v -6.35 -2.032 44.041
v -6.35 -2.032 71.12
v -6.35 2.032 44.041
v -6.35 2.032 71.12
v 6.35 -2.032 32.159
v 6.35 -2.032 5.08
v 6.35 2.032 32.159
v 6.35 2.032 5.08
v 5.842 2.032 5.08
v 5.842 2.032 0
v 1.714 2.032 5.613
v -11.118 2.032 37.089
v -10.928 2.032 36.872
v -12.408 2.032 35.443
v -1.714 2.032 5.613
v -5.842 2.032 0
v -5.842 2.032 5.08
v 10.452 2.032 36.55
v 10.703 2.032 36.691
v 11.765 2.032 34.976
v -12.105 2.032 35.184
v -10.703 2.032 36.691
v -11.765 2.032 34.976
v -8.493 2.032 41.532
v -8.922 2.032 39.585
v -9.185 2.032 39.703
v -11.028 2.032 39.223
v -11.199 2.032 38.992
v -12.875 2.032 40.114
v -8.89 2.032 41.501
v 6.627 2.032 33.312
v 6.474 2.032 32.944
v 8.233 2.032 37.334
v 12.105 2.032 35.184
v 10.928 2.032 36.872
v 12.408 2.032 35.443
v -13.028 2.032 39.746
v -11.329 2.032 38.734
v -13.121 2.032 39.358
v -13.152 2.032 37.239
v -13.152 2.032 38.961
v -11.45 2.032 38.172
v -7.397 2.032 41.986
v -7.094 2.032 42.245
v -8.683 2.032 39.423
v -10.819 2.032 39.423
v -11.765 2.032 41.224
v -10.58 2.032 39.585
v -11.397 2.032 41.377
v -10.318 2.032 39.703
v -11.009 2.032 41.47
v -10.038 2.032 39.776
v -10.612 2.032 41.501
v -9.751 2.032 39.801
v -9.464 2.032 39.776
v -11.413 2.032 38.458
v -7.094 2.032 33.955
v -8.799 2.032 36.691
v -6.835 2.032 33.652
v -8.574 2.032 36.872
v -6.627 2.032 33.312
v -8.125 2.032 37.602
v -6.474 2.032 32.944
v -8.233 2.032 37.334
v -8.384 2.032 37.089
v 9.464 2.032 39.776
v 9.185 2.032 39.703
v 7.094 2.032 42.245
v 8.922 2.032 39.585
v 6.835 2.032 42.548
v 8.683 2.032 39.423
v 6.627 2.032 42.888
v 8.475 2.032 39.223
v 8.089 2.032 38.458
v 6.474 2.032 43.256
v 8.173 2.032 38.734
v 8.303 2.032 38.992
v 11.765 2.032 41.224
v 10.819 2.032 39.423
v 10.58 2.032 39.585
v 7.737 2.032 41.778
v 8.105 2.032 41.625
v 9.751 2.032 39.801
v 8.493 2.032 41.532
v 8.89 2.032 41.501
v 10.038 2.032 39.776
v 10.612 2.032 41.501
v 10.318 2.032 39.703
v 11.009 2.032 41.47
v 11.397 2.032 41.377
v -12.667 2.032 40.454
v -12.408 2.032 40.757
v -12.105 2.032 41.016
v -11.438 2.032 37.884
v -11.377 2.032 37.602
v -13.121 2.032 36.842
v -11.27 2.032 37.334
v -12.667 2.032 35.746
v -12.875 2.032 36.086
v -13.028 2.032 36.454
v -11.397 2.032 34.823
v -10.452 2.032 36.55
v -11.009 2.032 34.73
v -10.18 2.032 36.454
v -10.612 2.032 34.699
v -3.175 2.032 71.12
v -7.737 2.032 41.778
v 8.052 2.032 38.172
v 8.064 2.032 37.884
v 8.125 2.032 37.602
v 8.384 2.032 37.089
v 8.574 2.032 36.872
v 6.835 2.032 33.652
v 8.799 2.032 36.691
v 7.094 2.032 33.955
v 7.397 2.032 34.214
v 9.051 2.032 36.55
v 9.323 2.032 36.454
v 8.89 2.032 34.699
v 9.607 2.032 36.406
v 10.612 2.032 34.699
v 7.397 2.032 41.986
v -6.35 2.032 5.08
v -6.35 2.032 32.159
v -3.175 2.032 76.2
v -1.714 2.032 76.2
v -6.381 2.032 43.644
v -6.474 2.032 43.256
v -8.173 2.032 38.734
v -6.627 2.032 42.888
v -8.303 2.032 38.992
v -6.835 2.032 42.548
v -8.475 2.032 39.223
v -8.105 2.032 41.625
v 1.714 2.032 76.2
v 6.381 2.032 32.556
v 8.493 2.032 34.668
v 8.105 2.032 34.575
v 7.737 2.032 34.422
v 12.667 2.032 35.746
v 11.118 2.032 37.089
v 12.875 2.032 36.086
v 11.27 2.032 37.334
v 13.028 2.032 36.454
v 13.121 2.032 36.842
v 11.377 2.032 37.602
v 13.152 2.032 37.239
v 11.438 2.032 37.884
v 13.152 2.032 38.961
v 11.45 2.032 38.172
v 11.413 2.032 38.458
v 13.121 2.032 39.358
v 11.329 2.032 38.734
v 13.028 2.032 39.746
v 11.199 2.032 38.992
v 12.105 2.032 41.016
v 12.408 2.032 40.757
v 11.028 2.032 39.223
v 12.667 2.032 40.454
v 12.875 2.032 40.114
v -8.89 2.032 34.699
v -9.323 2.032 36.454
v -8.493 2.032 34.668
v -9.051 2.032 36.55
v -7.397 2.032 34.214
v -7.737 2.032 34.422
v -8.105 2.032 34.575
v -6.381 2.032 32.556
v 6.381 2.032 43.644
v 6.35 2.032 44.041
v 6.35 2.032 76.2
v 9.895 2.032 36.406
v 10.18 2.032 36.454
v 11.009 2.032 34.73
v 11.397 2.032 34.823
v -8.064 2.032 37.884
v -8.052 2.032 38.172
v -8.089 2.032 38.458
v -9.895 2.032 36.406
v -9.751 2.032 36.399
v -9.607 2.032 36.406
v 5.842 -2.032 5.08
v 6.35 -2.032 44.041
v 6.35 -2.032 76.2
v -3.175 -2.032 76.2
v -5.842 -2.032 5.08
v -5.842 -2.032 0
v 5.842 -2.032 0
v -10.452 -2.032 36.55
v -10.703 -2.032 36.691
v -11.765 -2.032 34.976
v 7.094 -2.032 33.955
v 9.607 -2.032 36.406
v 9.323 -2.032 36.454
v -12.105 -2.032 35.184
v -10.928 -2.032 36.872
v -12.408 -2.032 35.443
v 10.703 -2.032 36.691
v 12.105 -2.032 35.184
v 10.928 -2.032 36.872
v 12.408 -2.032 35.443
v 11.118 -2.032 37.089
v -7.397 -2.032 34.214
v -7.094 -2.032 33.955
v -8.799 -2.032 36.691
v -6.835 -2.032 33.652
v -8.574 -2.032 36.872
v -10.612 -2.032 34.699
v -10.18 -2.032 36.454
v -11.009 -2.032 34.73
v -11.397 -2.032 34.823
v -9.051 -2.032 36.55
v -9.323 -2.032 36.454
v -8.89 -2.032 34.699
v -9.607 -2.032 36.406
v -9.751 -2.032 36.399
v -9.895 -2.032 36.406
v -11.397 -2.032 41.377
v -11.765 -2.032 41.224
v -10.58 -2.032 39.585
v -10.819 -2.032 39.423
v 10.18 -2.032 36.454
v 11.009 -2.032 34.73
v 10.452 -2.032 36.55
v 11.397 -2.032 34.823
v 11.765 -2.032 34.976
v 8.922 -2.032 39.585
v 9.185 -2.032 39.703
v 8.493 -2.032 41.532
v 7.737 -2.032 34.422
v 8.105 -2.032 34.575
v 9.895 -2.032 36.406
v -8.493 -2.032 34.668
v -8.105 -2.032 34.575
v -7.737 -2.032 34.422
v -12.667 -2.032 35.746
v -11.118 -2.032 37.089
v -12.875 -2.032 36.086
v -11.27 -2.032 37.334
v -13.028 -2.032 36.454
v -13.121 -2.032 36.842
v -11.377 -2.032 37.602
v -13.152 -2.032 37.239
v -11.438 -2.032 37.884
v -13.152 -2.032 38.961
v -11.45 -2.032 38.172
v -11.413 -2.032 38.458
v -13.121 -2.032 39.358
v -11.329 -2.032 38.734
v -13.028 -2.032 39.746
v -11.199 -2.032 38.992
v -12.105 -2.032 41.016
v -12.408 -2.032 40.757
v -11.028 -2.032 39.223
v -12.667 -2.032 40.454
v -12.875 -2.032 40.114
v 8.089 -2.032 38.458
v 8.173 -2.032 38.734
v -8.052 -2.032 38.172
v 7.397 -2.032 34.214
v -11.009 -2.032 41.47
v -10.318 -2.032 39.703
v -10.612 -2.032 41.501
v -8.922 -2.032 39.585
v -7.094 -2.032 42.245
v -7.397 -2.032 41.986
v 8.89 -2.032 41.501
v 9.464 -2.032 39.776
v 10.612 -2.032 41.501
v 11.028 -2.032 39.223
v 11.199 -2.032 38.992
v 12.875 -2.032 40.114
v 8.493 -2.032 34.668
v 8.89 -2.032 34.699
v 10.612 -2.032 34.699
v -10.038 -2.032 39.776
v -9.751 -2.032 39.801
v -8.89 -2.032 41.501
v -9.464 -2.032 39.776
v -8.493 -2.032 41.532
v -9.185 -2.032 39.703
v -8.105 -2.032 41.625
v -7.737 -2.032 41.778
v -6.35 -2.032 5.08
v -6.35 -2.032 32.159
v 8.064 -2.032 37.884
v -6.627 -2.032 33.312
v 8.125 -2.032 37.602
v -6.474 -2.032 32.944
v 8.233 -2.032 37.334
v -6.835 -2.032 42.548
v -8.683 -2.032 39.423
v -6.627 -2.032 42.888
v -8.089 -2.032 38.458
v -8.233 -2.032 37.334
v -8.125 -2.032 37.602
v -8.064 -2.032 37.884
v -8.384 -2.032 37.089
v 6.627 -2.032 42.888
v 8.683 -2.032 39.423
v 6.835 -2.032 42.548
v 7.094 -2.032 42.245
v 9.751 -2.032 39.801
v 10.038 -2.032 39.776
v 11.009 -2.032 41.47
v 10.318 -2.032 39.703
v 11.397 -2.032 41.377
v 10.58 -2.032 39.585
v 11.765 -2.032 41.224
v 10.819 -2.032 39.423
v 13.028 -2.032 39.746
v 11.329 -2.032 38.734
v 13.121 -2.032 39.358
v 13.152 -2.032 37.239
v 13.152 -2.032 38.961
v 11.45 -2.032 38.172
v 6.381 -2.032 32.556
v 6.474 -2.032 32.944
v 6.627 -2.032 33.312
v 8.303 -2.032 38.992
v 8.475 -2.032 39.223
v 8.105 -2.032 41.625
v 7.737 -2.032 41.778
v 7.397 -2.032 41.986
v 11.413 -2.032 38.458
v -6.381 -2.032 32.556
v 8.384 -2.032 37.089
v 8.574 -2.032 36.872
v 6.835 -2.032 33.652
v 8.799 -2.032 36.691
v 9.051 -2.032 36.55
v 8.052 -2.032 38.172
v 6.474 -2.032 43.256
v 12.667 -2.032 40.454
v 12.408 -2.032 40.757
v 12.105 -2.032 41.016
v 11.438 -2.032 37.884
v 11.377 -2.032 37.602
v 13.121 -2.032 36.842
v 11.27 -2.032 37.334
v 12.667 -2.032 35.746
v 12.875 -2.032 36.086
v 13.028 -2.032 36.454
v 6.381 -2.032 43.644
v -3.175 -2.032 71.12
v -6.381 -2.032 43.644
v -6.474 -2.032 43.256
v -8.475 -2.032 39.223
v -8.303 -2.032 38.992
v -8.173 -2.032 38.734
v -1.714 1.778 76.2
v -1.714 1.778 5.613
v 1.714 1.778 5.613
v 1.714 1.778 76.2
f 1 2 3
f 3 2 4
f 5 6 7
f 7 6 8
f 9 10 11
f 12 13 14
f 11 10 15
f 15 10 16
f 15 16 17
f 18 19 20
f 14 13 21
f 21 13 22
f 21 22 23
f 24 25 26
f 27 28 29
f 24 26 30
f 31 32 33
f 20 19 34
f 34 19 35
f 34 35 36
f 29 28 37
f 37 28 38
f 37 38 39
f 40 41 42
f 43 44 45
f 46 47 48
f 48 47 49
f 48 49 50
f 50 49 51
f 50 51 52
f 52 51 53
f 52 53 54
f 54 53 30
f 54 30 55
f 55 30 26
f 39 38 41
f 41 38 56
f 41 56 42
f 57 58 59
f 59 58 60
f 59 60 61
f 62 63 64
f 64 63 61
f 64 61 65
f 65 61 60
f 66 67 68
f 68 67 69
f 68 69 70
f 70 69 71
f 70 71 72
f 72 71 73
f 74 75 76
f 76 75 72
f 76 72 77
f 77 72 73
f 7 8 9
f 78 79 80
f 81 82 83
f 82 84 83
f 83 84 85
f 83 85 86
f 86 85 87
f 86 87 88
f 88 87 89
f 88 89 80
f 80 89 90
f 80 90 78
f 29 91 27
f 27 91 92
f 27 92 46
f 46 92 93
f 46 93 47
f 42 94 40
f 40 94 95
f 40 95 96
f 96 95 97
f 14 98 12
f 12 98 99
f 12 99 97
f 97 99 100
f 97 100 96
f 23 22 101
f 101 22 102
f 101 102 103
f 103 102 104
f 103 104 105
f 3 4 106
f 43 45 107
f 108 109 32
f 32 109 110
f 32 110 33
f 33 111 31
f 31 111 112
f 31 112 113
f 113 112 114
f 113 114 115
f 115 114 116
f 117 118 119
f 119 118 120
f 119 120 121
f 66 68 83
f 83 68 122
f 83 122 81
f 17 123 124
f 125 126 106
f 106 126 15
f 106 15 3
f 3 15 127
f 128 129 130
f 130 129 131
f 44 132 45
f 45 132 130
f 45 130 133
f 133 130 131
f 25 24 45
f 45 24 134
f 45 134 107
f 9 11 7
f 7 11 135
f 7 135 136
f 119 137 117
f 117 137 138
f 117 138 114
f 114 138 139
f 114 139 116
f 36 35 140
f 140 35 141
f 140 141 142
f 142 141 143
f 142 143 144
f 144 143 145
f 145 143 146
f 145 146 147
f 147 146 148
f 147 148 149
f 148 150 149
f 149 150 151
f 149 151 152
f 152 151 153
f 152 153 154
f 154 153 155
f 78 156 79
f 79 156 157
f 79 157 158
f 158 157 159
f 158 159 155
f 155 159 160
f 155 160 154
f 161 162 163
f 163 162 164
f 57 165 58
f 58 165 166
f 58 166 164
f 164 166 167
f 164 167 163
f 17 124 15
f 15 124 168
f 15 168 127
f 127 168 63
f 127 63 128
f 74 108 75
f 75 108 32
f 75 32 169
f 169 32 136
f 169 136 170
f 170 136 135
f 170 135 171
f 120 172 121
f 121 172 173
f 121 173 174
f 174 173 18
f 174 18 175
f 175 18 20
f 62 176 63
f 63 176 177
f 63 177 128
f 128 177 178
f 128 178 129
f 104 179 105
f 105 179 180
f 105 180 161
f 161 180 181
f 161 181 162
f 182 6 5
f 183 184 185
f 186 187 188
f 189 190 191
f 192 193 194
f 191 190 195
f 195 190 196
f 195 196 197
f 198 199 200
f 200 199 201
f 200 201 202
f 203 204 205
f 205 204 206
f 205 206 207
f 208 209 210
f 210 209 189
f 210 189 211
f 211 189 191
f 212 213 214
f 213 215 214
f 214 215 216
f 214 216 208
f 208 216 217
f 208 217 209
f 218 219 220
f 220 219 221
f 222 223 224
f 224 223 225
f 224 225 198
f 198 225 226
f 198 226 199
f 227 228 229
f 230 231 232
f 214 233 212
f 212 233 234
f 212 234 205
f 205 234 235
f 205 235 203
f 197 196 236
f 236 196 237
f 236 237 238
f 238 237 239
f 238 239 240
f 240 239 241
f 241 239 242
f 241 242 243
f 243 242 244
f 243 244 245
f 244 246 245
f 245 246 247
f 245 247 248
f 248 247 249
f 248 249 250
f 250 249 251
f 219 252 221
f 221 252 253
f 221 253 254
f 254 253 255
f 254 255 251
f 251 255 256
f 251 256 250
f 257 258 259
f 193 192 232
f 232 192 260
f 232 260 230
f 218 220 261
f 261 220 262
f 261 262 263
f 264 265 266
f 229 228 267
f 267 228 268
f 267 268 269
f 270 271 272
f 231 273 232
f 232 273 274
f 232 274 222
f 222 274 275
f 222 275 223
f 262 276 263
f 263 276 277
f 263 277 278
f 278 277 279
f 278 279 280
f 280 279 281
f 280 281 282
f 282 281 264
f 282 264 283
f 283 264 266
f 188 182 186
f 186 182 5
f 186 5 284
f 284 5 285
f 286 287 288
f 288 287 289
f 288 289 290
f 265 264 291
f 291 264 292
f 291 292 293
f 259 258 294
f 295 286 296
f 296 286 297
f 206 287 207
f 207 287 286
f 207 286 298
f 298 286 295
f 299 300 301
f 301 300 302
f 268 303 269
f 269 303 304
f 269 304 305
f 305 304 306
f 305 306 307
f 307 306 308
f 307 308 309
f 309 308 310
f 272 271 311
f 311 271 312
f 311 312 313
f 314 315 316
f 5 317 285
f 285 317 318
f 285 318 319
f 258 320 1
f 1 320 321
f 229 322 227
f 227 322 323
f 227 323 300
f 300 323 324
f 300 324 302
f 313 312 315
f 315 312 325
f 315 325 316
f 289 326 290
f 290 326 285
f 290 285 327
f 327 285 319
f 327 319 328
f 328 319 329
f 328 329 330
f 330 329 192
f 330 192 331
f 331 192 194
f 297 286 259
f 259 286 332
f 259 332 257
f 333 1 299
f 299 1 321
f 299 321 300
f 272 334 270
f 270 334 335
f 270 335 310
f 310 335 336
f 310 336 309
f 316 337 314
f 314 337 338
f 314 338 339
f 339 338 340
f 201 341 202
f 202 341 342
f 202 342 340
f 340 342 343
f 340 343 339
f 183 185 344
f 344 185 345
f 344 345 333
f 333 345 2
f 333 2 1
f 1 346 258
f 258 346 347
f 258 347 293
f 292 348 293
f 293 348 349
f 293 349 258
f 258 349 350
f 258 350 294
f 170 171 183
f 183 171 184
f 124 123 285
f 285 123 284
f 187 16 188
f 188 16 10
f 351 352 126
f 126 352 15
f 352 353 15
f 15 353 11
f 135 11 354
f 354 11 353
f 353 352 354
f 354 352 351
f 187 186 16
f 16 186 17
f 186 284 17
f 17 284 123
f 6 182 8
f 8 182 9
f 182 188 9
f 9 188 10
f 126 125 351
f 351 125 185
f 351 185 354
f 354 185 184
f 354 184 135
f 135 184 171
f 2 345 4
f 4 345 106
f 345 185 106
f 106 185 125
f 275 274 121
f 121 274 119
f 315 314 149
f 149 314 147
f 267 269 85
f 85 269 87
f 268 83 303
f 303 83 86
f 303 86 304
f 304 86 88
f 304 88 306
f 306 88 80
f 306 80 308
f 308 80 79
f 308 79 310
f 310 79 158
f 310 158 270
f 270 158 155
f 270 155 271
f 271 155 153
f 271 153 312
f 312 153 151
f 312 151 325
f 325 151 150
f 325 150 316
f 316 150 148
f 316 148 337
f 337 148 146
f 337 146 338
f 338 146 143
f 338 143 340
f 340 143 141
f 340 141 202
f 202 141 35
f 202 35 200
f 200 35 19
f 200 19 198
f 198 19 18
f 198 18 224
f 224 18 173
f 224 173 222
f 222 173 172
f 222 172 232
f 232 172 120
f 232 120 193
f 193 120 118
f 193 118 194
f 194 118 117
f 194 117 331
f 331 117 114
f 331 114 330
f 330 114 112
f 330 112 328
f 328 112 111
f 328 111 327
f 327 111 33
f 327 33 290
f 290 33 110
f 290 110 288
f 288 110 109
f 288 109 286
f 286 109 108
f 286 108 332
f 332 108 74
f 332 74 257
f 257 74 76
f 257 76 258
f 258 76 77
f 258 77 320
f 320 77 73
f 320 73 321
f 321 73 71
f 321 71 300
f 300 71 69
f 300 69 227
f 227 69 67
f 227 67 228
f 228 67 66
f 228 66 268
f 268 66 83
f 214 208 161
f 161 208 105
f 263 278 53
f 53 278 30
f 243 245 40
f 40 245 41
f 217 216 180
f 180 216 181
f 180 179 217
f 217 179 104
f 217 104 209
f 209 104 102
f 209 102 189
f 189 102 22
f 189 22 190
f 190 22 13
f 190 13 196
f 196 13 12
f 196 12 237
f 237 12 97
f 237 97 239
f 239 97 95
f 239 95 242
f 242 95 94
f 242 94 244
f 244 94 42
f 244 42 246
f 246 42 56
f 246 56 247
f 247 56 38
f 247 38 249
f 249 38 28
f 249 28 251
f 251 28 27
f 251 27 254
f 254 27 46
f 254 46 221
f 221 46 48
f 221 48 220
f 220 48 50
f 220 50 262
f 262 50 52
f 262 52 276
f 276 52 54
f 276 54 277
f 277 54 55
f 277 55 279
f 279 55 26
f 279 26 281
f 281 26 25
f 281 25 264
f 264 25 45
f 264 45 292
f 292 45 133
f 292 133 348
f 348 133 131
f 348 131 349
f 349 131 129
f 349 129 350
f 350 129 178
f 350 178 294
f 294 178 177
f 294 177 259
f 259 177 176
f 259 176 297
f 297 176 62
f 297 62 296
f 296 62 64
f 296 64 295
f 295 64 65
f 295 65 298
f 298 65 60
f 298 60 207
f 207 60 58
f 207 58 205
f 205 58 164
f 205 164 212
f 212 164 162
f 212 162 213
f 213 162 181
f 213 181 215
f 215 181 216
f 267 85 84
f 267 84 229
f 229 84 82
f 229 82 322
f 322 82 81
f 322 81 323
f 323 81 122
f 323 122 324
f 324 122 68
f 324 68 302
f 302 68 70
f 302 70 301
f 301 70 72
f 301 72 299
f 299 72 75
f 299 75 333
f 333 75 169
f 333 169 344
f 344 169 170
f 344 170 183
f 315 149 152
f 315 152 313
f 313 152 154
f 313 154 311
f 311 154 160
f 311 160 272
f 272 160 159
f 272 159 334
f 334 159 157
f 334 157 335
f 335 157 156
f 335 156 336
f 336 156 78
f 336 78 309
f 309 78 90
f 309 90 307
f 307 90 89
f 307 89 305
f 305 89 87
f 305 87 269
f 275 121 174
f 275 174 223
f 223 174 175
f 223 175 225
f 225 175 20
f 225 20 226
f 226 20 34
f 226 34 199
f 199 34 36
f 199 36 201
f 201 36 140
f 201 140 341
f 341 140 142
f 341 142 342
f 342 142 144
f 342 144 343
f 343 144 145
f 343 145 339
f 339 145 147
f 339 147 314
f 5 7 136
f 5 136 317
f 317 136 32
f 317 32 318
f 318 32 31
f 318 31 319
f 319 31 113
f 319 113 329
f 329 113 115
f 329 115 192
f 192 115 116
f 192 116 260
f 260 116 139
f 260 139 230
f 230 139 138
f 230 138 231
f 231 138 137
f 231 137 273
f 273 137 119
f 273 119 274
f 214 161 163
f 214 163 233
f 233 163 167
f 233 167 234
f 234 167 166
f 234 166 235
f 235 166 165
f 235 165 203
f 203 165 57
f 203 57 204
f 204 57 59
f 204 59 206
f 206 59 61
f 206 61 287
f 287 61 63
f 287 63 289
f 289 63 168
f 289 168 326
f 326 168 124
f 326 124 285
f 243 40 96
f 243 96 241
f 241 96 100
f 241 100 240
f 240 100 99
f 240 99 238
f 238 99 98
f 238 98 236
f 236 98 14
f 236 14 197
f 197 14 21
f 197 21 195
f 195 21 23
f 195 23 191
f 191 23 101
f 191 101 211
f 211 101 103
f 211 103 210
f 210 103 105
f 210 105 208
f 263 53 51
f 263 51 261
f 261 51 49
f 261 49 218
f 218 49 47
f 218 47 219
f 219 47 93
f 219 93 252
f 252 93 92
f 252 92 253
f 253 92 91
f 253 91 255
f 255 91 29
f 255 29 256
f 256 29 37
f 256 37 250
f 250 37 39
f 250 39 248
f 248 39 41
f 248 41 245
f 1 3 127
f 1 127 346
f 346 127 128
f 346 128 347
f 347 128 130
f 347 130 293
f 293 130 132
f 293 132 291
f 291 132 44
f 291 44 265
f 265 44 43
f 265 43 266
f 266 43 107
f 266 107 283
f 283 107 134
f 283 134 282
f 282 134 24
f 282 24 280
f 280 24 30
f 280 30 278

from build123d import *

# Parameters (mm, degrees)
SKETCH1_W               = 12.7
SKETCH1_H               = 4.064
BOSS_EXTRUDE1_DEPTH     = 228.6
SKETCH2_W               = 3.429
SKETCH2_H               = 217.3732
CUT_EXTRUDE1_DEPTH      = 0.254
SKETCH3_W               = 0.508
SKETCH3_H               = 5.08
CUT_EXTRUDE2_DEPTH      = 229.724285103
MIRROR2_COPY_1_SKETCH_W = 0.508
MIRROR2_COPY_1_SKETCH_H = 5.08
MIRROR2_COPY_1_DEPTH    = 229.724285103
SKETCH4_W               = 3.175
SKETCH4_H               = 3.175
CUT_EXTRUDE3_DEPTH      = 229.724285103
CUT_EXTRUDE5_DEPTH      = 229.724285103
SKETCH6_W               = 6.80212
SKETCH6_H               = 6.80212
SKETCH6_R               = 1.70053
BOSS_EXTRUDE2_DEPTH     = 4.064
FILLET1_R               = 2.54


with BuildPart() as part:
    # Sketch1 → Boss-Extrude1 (new body)
    with BuildSketch(Plane.XY):
        Rectangle(SKETCH1_W, SKETCH1_H)
    extrude(amount=BOSS_EXTRUDE1_DEPTH)

    # Sketch2 → Cut-Extrude1 (cut)
    with BuildSketch(Plane(origin=(0, 2.032, 0), x_dir=(1, 0, 0), z_dir=(0, 1, 0))):
        with Locations((0, -114.3)):
            Rectangle(SKETCH2_W, SKETCH2_H)
    extrude(amount=-CUT_EXTRUDE1_DEPTH, mode=Mode.SUBTRACT)

    # Sketch3 → Cut-Extrude2 (cut, through all)
    with BuildSketch(Plane(origin=(0, 2.032, 0), x_dir=(1, 0, 0), z_dir=(0, 1, 0))):
        with Locations((-6.096, -226.06)):
            Rectangle(SKETCH3_W, SKETCH3_H)
    cut_extrude2 = extrude(amount=-CUT_EXTRUDE2_DEPTH, mode=Mode.SUBTRACT)

    # Mirror1: Cut-Extrude2 across plane
    add(cut_extrude2.mirror(Plane(origin=(0, 0, 114.3), x_dir=(1, 0, 0), z_dir=(0, 0, -1))), mode=Mode.SUBTRACT)

    # Mirror2: Cut-Extrude2 across plane
    add(cut_extrude2.mirror(Plane(origin=(0, 0, 0), x_dir=(0, 0, 1), z_dir=(1, 0, 0))), mode=Mode.SUBTRACT)

    # Mirror2 copy 1 sketch → Mirror2 copy 1 (cut, through all)
    with BuildSketch(Plane(origin=(0, 2.032, 228.6), x_dir=(-1, 0, 0), z_dir=(0, 1, 0))):
        with Locations((-6.096, -226.06)):
            Rectangle(MIRROR2_COPY_1_SKETCH_W, MIRROR2_COPY_1_SKETCH_H)
    extrude(amount=-MIRROR2_COPY_1_DEPTH, mode=Mode.SUBTRACT)

    # Sketch4 → Cut-Extrude3 (cut, through all)
    with BuildSketch(Plane(origin=(0, 2.032, 0), x_dir=(1, 0, 0), z_dir=(0, 1, 0))):
        with Locations((-4.2545, -227.0125)):
            Rectangle(SKETCH4_W, SKETCH4_H)
    extrude(amount=-CUT_EXTRUDE3_DEPTH, mode=Mode.SUBTRACT)

    # Sketch5 → Cut-Extrude5 (cut, through all)
    with BuildSketch(Plane(origin=(0, 2.032, 0), x_dir=(1, 0, 0), z_dir=(0, 1, 0))):
        Polygon((-6.35, -71.12), (-6.35, -152.4), (-6.35, -228.6), (6.35, -228.6), (6.35, -155.575), (6.35, -152.4), (6.35, -76.2), (-3.175, -76.2), (-3.175, -71.12), align=None)
    extrude(amount=-CUT_EXTRUDE5_DEPTH, mode=Mode.SUBTRACT)

    # Sketch6 → Boss-Extrude2 (add, through all)
    # profile 1 of 2: a face of its own
    with BuildSketch(Plane(origin=(0, 2.032, 0), x_dir=(1, 0, 0), z_dir=(0, 1, 0))):
        with Locations((9.75106, -38.1)):
            Rectangle(SKETCH6_W, SKETCH6_H)
        with Locations(Location((9.75106, -38.1, 0), (0, 0, 270))):
            Circle(SKETCH6_R, mode=Mode.SUBTRACT)
    # profile 2 of 2: a face of its own
    with BuildSketch(Plane(origin=(0, 2.032, 0), x_dir=(1, 0, 0), z_dir=(0, 1, 0))):
        with Locations((-9.75106, -38.1)):
            Rectangle(SKETCH6_W, SKETCH6_H)
        with Locations(Location((-9.75106, -38.1, 0), (0, 0, 90))):
            Circle(SKETCH6_R, mode=Mode.SUBTRACT)
    extrude(amount=-BOSS_EXTRUDE2_DEPTH)

    # Fillet1
    fillet1_edges = [part.edges().sort_by_distance(p)[0] for p in [
        (6.35, 0, 41.50106),
        (13.15212, 0, 41.50106),
        (13.15212, 0, 34.69894),
        (6.35, 0, 34.69894),
        (-6.35, 0, 34.69894),
        (-13.15212, 0, 34.69894),
        (-13.15212, 0, 41.50106),
        (-6.35, 0, 41.50106),
    ]]
    fillet(fillet1_edges, radius=FILLET1_R)


solid = part.part
